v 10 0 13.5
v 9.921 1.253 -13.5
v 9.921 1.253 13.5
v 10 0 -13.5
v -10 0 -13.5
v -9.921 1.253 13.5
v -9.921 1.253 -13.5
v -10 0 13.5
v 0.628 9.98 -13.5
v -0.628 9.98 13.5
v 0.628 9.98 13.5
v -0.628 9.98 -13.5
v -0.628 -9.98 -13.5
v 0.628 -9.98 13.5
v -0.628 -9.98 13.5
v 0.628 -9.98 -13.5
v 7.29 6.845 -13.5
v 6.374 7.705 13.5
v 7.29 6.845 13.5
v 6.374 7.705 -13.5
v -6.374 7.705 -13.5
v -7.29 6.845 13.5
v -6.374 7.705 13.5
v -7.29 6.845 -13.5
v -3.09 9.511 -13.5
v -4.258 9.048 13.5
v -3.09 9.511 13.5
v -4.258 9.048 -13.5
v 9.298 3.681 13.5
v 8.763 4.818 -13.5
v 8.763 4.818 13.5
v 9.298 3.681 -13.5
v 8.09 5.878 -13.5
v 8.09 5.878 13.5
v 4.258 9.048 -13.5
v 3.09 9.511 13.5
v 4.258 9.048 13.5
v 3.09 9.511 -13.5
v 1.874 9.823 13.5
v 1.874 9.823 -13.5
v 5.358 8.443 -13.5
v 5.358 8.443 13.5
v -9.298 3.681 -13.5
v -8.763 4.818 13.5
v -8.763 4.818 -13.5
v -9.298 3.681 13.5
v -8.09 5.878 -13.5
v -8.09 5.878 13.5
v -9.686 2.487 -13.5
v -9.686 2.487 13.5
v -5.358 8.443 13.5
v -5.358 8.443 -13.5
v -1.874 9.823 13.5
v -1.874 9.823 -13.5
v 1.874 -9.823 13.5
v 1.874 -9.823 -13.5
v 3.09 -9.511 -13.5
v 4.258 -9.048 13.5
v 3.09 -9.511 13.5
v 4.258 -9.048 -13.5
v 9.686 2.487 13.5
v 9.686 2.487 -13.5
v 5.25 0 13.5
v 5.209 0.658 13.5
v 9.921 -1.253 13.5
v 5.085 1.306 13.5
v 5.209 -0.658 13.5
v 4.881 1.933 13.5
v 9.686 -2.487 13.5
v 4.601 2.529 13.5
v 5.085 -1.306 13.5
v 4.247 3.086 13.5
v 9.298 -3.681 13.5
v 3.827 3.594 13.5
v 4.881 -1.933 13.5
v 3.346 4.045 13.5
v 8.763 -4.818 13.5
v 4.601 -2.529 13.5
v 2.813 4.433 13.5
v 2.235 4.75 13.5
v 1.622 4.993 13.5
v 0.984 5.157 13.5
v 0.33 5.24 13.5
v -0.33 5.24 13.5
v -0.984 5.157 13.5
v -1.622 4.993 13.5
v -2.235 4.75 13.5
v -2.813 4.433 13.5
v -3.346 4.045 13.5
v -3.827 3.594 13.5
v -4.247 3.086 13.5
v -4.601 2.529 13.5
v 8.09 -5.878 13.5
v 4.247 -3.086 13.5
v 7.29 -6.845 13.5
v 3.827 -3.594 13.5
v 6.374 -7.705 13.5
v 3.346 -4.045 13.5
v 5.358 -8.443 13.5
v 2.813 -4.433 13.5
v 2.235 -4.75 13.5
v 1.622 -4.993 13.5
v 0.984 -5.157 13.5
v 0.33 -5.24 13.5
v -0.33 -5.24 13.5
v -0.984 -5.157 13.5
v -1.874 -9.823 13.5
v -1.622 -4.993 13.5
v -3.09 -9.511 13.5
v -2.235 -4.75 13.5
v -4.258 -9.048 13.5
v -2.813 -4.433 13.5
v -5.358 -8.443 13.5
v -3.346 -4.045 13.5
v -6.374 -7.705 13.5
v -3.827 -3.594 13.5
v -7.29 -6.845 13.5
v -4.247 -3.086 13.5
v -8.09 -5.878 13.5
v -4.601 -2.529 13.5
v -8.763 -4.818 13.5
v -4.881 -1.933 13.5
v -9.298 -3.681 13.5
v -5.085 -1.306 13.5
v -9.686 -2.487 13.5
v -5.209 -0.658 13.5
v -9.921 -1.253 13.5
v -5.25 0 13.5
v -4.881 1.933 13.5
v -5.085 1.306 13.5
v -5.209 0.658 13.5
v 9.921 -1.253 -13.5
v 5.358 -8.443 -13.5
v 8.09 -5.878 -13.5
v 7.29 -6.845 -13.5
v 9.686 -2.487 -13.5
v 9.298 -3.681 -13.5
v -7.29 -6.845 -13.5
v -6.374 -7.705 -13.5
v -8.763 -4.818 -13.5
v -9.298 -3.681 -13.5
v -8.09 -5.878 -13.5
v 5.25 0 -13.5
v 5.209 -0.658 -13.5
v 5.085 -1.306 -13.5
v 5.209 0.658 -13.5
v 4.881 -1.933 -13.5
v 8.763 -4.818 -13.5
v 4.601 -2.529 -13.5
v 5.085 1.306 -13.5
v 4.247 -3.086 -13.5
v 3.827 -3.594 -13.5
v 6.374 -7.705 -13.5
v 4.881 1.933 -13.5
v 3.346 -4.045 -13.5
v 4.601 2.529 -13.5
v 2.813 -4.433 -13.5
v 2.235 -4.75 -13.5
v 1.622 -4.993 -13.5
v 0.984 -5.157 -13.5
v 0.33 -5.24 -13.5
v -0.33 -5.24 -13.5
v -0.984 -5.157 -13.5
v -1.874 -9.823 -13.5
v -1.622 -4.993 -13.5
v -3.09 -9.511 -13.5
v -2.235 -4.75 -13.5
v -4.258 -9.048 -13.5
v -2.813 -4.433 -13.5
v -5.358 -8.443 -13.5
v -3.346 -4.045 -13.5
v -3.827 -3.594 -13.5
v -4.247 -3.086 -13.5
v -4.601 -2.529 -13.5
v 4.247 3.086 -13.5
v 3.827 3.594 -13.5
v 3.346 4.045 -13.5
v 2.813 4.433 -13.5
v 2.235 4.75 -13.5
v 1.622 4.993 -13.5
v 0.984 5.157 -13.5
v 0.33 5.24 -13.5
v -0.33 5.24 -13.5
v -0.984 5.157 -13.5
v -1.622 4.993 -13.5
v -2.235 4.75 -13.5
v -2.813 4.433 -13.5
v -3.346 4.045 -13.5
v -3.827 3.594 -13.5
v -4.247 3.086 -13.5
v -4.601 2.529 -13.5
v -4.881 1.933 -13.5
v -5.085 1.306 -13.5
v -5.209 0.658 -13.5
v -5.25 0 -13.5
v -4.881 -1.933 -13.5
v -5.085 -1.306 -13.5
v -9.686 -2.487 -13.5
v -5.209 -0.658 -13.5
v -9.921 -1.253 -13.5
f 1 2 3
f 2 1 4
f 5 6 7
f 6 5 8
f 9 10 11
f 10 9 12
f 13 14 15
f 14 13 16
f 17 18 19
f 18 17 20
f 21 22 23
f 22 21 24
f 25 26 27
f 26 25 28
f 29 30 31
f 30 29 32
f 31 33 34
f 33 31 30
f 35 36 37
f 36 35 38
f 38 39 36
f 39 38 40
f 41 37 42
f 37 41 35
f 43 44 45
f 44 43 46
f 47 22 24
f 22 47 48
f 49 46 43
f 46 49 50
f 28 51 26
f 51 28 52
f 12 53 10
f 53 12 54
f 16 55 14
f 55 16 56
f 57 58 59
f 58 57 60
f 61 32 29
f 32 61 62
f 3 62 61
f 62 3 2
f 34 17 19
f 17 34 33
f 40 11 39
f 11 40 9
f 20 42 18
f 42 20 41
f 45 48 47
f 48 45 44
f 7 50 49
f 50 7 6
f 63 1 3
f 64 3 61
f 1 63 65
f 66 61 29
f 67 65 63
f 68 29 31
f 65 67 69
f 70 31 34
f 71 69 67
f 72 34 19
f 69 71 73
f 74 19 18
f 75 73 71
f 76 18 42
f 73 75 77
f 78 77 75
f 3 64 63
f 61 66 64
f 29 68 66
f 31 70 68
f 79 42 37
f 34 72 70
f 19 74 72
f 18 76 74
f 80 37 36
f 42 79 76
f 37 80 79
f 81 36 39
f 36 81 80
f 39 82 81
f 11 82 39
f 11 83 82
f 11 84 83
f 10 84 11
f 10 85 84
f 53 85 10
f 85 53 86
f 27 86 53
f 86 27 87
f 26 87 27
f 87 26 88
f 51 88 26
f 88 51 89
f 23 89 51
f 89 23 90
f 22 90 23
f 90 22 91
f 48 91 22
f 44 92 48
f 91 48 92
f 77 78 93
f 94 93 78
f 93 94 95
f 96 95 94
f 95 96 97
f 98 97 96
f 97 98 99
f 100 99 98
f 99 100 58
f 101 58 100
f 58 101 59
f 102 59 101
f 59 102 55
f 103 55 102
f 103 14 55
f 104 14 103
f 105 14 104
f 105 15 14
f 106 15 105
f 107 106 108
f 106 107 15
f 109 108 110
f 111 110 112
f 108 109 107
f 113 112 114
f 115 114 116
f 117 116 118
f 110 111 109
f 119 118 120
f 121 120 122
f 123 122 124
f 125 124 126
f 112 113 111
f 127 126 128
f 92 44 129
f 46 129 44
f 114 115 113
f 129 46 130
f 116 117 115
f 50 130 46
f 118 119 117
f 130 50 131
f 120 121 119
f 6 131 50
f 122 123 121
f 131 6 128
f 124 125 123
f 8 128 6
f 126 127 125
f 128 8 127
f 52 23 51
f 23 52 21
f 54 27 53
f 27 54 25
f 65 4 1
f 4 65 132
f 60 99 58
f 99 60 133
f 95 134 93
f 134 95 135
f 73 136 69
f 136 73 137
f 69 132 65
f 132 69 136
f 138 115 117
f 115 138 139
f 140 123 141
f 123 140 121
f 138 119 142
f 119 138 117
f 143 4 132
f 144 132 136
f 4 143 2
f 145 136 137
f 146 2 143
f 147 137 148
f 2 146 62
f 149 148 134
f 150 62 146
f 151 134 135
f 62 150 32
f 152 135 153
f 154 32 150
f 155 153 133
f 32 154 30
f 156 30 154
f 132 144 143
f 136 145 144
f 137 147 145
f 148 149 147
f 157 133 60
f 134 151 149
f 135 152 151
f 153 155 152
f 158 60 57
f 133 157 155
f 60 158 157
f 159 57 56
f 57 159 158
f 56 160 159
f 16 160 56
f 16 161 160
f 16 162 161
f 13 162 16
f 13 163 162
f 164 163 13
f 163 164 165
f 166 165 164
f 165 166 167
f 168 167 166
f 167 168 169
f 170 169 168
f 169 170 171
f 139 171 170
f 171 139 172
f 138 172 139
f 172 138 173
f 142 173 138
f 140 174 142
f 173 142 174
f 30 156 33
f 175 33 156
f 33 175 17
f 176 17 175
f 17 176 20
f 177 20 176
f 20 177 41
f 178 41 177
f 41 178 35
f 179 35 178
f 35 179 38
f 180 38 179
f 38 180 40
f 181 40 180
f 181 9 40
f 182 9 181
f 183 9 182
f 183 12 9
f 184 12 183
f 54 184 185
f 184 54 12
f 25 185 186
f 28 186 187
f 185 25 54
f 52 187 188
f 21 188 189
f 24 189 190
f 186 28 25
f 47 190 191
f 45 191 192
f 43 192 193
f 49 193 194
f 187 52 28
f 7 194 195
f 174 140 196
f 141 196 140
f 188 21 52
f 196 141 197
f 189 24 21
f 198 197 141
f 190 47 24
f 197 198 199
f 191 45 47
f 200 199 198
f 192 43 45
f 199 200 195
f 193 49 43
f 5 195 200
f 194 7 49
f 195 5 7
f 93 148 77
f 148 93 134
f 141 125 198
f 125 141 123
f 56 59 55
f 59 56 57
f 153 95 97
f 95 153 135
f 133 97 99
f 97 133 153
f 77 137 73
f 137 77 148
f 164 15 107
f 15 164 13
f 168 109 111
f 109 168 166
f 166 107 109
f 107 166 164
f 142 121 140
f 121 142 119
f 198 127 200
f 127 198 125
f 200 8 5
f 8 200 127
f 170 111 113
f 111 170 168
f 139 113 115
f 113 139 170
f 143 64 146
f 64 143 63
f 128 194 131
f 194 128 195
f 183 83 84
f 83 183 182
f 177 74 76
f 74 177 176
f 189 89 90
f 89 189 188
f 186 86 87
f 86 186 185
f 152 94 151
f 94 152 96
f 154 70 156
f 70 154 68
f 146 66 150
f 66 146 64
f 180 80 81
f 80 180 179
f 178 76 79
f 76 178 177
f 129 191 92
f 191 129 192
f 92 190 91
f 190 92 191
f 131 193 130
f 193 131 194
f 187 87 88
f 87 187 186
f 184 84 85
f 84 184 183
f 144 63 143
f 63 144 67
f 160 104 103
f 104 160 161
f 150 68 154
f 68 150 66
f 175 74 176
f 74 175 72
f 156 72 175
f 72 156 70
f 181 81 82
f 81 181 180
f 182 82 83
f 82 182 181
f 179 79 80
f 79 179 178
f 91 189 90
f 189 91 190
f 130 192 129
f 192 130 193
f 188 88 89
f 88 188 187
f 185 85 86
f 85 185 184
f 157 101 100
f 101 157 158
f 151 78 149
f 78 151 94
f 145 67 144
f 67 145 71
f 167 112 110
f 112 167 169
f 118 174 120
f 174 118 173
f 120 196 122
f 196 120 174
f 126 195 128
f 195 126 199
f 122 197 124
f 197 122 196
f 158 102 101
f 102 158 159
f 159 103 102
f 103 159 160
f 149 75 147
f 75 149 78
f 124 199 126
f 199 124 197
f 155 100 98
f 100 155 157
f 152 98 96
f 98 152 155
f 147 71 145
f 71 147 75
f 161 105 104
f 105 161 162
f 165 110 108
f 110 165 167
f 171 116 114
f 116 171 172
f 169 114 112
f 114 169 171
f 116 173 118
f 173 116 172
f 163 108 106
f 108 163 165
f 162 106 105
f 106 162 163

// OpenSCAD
$fn = 50;


difference() {
	union() {
		translate(v = [0, 0, -13.5000000000]) {
			cylinder(h = 27, r = 10.0000000000);
		}
	}
	union() {
		translate(v = [0, 0, -100.0000000000]) {
			cylinder(h = 200, r = 5.2500000000);
		}
	}
}
